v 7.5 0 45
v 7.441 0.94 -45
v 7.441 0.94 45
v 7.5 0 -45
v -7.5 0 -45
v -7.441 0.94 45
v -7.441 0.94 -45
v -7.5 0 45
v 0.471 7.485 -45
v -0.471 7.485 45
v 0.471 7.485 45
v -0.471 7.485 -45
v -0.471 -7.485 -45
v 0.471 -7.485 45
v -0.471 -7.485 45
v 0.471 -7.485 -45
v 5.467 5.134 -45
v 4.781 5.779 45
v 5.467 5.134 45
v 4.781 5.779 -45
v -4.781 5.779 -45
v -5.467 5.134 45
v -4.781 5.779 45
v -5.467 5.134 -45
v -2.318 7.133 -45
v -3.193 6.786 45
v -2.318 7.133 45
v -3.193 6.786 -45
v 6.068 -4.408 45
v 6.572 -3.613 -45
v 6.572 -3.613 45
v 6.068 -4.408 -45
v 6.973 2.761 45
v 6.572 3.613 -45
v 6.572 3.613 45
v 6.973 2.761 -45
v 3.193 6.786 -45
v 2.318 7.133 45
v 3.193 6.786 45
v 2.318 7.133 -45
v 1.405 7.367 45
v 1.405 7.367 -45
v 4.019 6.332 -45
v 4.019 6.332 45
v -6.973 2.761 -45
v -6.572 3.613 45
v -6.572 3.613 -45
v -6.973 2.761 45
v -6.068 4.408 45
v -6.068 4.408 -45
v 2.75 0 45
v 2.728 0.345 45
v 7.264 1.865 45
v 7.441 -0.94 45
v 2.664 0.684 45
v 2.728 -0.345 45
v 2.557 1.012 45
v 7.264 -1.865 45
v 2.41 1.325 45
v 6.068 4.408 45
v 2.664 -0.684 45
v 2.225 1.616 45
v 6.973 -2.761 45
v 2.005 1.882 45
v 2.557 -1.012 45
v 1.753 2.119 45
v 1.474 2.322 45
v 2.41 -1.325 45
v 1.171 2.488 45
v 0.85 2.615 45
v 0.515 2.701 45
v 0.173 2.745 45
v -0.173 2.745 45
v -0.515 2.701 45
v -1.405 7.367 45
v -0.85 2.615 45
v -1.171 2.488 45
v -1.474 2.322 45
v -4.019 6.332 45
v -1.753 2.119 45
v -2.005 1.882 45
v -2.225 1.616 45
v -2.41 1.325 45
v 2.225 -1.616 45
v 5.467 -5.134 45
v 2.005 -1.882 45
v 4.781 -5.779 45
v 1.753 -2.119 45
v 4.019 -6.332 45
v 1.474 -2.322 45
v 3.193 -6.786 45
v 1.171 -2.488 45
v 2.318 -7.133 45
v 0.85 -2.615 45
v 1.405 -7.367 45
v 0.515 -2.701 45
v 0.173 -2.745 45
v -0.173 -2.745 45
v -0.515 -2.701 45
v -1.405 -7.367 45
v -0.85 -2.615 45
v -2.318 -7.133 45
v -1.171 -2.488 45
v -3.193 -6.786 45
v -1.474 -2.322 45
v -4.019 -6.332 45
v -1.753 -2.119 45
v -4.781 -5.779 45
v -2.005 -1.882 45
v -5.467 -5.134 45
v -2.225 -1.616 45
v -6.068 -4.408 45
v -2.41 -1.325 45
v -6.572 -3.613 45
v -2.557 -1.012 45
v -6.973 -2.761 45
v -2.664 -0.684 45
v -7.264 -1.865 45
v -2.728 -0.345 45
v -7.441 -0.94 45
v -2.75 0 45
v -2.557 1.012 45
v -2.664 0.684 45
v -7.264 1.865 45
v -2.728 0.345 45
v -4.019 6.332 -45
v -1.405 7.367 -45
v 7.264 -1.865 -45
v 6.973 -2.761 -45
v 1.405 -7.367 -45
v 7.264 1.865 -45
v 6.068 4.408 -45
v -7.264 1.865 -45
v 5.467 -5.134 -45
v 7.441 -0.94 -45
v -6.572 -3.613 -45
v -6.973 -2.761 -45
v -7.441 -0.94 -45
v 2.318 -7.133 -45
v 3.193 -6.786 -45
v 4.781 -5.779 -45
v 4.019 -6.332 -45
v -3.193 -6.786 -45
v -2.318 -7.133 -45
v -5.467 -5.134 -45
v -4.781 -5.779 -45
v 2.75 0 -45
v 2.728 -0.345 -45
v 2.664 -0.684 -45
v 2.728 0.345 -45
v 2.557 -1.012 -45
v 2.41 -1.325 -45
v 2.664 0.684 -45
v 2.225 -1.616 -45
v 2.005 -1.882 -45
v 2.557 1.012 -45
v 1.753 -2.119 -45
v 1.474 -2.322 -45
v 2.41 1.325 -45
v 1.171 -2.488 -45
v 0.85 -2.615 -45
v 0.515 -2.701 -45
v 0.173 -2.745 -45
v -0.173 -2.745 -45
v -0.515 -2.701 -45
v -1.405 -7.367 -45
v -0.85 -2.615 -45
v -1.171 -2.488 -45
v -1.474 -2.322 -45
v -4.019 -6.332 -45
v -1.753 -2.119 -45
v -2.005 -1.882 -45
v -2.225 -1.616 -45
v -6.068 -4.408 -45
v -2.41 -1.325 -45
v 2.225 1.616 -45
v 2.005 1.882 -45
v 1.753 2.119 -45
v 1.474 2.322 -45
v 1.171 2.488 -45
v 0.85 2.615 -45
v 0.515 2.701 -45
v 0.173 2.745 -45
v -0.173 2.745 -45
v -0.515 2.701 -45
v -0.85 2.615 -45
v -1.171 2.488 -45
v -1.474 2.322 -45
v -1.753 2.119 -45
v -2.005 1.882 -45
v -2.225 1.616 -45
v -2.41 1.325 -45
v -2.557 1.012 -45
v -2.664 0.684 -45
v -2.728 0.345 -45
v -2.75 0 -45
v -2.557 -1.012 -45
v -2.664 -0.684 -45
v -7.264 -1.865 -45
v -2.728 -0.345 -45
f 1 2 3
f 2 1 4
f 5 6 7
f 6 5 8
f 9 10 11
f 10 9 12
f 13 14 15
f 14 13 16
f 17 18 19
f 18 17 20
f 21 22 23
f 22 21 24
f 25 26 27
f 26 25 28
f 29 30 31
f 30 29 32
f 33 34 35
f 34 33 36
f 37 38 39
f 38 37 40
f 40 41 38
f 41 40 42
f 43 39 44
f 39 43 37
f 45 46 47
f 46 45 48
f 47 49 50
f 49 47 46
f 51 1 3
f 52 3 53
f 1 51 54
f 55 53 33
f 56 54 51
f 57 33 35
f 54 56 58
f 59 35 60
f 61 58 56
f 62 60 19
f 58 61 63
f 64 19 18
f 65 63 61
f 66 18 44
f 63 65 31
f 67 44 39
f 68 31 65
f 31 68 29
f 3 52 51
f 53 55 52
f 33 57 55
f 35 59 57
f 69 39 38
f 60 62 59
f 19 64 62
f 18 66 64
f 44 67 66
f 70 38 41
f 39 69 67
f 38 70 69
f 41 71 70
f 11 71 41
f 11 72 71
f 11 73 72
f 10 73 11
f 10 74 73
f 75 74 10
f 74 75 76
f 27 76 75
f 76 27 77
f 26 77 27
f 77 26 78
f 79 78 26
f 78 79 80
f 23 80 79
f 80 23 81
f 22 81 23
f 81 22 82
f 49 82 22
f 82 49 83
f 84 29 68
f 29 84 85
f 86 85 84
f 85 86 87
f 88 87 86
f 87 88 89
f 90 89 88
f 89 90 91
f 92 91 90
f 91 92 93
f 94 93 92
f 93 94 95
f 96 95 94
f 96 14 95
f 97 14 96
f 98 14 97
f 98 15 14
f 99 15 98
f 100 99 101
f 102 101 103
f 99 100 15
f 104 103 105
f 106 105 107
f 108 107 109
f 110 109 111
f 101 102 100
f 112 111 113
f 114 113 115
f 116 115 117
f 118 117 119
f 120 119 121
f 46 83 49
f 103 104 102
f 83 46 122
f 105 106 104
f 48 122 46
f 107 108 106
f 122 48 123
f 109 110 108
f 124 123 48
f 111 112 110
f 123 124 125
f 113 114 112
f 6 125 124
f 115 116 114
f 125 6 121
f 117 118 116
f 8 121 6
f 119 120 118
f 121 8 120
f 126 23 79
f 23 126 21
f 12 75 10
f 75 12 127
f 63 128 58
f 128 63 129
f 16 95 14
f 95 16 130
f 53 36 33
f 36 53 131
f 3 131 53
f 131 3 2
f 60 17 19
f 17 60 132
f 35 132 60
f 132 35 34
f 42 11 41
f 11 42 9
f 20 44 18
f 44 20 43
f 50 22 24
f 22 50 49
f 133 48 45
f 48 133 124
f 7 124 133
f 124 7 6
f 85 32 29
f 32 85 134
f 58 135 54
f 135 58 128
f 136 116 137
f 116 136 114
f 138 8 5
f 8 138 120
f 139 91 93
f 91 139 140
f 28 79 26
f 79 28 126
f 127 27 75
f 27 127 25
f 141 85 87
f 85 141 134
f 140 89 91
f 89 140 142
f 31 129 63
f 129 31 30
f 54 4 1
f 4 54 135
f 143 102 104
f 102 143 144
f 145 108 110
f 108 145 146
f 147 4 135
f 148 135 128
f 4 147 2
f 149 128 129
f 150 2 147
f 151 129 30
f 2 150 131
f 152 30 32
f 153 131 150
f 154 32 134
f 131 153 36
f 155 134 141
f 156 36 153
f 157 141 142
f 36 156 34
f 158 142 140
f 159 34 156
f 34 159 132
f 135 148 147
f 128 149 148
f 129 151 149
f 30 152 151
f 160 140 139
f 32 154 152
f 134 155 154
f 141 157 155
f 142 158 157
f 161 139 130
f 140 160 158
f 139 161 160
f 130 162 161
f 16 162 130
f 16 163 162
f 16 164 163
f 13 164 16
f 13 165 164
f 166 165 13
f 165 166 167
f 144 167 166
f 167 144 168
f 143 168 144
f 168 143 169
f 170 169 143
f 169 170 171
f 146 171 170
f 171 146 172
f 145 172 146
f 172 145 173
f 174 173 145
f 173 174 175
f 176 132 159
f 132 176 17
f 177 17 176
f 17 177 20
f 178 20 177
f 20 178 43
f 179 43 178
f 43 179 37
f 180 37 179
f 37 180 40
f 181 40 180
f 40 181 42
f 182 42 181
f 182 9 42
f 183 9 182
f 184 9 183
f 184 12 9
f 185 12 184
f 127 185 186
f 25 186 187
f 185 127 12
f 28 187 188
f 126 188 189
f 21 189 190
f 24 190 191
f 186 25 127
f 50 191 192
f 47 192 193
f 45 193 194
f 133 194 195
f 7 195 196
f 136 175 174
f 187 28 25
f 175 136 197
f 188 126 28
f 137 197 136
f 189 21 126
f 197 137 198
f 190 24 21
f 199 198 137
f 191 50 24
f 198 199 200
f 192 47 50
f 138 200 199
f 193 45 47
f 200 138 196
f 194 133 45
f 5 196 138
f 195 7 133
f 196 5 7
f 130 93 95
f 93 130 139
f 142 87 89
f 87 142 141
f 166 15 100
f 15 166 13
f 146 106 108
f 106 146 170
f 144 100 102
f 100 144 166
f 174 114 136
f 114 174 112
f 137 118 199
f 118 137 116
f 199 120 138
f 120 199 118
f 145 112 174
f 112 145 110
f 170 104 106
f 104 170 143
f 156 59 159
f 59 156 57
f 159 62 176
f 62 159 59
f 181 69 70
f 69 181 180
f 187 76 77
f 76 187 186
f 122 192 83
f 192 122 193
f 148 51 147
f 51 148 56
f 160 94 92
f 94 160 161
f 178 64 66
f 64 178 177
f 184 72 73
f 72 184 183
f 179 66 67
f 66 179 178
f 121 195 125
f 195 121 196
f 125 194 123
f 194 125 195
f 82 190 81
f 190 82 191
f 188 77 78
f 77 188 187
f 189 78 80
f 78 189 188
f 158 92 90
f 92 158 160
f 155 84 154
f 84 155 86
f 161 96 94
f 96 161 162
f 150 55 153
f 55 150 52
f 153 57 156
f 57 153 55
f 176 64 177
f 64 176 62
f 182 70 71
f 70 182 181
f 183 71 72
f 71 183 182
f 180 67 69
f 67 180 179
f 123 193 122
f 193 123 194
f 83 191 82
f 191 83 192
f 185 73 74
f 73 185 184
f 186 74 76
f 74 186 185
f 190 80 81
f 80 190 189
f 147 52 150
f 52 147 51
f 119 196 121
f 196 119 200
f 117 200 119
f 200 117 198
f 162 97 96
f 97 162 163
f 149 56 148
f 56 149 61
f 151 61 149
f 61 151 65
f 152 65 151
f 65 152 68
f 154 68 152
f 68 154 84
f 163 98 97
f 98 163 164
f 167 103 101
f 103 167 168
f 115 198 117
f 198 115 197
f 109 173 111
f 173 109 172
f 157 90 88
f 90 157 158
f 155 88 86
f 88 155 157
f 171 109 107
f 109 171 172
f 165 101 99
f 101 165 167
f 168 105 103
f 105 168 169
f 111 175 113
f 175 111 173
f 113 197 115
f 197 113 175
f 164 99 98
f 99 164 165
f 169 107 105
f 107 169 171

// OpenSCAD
$fn = 50;


difference() {
	union() {
		translate(v = [0, 0, -45.0000000000]) {
			cylinder(h = 90, r = 7.5000000000);
		}
	}
	union() {
		translate(v = [0, 0, -100.0000000000]) {
			cylinder(h = 200, r = 2.7500000000);
		}
	}
}
